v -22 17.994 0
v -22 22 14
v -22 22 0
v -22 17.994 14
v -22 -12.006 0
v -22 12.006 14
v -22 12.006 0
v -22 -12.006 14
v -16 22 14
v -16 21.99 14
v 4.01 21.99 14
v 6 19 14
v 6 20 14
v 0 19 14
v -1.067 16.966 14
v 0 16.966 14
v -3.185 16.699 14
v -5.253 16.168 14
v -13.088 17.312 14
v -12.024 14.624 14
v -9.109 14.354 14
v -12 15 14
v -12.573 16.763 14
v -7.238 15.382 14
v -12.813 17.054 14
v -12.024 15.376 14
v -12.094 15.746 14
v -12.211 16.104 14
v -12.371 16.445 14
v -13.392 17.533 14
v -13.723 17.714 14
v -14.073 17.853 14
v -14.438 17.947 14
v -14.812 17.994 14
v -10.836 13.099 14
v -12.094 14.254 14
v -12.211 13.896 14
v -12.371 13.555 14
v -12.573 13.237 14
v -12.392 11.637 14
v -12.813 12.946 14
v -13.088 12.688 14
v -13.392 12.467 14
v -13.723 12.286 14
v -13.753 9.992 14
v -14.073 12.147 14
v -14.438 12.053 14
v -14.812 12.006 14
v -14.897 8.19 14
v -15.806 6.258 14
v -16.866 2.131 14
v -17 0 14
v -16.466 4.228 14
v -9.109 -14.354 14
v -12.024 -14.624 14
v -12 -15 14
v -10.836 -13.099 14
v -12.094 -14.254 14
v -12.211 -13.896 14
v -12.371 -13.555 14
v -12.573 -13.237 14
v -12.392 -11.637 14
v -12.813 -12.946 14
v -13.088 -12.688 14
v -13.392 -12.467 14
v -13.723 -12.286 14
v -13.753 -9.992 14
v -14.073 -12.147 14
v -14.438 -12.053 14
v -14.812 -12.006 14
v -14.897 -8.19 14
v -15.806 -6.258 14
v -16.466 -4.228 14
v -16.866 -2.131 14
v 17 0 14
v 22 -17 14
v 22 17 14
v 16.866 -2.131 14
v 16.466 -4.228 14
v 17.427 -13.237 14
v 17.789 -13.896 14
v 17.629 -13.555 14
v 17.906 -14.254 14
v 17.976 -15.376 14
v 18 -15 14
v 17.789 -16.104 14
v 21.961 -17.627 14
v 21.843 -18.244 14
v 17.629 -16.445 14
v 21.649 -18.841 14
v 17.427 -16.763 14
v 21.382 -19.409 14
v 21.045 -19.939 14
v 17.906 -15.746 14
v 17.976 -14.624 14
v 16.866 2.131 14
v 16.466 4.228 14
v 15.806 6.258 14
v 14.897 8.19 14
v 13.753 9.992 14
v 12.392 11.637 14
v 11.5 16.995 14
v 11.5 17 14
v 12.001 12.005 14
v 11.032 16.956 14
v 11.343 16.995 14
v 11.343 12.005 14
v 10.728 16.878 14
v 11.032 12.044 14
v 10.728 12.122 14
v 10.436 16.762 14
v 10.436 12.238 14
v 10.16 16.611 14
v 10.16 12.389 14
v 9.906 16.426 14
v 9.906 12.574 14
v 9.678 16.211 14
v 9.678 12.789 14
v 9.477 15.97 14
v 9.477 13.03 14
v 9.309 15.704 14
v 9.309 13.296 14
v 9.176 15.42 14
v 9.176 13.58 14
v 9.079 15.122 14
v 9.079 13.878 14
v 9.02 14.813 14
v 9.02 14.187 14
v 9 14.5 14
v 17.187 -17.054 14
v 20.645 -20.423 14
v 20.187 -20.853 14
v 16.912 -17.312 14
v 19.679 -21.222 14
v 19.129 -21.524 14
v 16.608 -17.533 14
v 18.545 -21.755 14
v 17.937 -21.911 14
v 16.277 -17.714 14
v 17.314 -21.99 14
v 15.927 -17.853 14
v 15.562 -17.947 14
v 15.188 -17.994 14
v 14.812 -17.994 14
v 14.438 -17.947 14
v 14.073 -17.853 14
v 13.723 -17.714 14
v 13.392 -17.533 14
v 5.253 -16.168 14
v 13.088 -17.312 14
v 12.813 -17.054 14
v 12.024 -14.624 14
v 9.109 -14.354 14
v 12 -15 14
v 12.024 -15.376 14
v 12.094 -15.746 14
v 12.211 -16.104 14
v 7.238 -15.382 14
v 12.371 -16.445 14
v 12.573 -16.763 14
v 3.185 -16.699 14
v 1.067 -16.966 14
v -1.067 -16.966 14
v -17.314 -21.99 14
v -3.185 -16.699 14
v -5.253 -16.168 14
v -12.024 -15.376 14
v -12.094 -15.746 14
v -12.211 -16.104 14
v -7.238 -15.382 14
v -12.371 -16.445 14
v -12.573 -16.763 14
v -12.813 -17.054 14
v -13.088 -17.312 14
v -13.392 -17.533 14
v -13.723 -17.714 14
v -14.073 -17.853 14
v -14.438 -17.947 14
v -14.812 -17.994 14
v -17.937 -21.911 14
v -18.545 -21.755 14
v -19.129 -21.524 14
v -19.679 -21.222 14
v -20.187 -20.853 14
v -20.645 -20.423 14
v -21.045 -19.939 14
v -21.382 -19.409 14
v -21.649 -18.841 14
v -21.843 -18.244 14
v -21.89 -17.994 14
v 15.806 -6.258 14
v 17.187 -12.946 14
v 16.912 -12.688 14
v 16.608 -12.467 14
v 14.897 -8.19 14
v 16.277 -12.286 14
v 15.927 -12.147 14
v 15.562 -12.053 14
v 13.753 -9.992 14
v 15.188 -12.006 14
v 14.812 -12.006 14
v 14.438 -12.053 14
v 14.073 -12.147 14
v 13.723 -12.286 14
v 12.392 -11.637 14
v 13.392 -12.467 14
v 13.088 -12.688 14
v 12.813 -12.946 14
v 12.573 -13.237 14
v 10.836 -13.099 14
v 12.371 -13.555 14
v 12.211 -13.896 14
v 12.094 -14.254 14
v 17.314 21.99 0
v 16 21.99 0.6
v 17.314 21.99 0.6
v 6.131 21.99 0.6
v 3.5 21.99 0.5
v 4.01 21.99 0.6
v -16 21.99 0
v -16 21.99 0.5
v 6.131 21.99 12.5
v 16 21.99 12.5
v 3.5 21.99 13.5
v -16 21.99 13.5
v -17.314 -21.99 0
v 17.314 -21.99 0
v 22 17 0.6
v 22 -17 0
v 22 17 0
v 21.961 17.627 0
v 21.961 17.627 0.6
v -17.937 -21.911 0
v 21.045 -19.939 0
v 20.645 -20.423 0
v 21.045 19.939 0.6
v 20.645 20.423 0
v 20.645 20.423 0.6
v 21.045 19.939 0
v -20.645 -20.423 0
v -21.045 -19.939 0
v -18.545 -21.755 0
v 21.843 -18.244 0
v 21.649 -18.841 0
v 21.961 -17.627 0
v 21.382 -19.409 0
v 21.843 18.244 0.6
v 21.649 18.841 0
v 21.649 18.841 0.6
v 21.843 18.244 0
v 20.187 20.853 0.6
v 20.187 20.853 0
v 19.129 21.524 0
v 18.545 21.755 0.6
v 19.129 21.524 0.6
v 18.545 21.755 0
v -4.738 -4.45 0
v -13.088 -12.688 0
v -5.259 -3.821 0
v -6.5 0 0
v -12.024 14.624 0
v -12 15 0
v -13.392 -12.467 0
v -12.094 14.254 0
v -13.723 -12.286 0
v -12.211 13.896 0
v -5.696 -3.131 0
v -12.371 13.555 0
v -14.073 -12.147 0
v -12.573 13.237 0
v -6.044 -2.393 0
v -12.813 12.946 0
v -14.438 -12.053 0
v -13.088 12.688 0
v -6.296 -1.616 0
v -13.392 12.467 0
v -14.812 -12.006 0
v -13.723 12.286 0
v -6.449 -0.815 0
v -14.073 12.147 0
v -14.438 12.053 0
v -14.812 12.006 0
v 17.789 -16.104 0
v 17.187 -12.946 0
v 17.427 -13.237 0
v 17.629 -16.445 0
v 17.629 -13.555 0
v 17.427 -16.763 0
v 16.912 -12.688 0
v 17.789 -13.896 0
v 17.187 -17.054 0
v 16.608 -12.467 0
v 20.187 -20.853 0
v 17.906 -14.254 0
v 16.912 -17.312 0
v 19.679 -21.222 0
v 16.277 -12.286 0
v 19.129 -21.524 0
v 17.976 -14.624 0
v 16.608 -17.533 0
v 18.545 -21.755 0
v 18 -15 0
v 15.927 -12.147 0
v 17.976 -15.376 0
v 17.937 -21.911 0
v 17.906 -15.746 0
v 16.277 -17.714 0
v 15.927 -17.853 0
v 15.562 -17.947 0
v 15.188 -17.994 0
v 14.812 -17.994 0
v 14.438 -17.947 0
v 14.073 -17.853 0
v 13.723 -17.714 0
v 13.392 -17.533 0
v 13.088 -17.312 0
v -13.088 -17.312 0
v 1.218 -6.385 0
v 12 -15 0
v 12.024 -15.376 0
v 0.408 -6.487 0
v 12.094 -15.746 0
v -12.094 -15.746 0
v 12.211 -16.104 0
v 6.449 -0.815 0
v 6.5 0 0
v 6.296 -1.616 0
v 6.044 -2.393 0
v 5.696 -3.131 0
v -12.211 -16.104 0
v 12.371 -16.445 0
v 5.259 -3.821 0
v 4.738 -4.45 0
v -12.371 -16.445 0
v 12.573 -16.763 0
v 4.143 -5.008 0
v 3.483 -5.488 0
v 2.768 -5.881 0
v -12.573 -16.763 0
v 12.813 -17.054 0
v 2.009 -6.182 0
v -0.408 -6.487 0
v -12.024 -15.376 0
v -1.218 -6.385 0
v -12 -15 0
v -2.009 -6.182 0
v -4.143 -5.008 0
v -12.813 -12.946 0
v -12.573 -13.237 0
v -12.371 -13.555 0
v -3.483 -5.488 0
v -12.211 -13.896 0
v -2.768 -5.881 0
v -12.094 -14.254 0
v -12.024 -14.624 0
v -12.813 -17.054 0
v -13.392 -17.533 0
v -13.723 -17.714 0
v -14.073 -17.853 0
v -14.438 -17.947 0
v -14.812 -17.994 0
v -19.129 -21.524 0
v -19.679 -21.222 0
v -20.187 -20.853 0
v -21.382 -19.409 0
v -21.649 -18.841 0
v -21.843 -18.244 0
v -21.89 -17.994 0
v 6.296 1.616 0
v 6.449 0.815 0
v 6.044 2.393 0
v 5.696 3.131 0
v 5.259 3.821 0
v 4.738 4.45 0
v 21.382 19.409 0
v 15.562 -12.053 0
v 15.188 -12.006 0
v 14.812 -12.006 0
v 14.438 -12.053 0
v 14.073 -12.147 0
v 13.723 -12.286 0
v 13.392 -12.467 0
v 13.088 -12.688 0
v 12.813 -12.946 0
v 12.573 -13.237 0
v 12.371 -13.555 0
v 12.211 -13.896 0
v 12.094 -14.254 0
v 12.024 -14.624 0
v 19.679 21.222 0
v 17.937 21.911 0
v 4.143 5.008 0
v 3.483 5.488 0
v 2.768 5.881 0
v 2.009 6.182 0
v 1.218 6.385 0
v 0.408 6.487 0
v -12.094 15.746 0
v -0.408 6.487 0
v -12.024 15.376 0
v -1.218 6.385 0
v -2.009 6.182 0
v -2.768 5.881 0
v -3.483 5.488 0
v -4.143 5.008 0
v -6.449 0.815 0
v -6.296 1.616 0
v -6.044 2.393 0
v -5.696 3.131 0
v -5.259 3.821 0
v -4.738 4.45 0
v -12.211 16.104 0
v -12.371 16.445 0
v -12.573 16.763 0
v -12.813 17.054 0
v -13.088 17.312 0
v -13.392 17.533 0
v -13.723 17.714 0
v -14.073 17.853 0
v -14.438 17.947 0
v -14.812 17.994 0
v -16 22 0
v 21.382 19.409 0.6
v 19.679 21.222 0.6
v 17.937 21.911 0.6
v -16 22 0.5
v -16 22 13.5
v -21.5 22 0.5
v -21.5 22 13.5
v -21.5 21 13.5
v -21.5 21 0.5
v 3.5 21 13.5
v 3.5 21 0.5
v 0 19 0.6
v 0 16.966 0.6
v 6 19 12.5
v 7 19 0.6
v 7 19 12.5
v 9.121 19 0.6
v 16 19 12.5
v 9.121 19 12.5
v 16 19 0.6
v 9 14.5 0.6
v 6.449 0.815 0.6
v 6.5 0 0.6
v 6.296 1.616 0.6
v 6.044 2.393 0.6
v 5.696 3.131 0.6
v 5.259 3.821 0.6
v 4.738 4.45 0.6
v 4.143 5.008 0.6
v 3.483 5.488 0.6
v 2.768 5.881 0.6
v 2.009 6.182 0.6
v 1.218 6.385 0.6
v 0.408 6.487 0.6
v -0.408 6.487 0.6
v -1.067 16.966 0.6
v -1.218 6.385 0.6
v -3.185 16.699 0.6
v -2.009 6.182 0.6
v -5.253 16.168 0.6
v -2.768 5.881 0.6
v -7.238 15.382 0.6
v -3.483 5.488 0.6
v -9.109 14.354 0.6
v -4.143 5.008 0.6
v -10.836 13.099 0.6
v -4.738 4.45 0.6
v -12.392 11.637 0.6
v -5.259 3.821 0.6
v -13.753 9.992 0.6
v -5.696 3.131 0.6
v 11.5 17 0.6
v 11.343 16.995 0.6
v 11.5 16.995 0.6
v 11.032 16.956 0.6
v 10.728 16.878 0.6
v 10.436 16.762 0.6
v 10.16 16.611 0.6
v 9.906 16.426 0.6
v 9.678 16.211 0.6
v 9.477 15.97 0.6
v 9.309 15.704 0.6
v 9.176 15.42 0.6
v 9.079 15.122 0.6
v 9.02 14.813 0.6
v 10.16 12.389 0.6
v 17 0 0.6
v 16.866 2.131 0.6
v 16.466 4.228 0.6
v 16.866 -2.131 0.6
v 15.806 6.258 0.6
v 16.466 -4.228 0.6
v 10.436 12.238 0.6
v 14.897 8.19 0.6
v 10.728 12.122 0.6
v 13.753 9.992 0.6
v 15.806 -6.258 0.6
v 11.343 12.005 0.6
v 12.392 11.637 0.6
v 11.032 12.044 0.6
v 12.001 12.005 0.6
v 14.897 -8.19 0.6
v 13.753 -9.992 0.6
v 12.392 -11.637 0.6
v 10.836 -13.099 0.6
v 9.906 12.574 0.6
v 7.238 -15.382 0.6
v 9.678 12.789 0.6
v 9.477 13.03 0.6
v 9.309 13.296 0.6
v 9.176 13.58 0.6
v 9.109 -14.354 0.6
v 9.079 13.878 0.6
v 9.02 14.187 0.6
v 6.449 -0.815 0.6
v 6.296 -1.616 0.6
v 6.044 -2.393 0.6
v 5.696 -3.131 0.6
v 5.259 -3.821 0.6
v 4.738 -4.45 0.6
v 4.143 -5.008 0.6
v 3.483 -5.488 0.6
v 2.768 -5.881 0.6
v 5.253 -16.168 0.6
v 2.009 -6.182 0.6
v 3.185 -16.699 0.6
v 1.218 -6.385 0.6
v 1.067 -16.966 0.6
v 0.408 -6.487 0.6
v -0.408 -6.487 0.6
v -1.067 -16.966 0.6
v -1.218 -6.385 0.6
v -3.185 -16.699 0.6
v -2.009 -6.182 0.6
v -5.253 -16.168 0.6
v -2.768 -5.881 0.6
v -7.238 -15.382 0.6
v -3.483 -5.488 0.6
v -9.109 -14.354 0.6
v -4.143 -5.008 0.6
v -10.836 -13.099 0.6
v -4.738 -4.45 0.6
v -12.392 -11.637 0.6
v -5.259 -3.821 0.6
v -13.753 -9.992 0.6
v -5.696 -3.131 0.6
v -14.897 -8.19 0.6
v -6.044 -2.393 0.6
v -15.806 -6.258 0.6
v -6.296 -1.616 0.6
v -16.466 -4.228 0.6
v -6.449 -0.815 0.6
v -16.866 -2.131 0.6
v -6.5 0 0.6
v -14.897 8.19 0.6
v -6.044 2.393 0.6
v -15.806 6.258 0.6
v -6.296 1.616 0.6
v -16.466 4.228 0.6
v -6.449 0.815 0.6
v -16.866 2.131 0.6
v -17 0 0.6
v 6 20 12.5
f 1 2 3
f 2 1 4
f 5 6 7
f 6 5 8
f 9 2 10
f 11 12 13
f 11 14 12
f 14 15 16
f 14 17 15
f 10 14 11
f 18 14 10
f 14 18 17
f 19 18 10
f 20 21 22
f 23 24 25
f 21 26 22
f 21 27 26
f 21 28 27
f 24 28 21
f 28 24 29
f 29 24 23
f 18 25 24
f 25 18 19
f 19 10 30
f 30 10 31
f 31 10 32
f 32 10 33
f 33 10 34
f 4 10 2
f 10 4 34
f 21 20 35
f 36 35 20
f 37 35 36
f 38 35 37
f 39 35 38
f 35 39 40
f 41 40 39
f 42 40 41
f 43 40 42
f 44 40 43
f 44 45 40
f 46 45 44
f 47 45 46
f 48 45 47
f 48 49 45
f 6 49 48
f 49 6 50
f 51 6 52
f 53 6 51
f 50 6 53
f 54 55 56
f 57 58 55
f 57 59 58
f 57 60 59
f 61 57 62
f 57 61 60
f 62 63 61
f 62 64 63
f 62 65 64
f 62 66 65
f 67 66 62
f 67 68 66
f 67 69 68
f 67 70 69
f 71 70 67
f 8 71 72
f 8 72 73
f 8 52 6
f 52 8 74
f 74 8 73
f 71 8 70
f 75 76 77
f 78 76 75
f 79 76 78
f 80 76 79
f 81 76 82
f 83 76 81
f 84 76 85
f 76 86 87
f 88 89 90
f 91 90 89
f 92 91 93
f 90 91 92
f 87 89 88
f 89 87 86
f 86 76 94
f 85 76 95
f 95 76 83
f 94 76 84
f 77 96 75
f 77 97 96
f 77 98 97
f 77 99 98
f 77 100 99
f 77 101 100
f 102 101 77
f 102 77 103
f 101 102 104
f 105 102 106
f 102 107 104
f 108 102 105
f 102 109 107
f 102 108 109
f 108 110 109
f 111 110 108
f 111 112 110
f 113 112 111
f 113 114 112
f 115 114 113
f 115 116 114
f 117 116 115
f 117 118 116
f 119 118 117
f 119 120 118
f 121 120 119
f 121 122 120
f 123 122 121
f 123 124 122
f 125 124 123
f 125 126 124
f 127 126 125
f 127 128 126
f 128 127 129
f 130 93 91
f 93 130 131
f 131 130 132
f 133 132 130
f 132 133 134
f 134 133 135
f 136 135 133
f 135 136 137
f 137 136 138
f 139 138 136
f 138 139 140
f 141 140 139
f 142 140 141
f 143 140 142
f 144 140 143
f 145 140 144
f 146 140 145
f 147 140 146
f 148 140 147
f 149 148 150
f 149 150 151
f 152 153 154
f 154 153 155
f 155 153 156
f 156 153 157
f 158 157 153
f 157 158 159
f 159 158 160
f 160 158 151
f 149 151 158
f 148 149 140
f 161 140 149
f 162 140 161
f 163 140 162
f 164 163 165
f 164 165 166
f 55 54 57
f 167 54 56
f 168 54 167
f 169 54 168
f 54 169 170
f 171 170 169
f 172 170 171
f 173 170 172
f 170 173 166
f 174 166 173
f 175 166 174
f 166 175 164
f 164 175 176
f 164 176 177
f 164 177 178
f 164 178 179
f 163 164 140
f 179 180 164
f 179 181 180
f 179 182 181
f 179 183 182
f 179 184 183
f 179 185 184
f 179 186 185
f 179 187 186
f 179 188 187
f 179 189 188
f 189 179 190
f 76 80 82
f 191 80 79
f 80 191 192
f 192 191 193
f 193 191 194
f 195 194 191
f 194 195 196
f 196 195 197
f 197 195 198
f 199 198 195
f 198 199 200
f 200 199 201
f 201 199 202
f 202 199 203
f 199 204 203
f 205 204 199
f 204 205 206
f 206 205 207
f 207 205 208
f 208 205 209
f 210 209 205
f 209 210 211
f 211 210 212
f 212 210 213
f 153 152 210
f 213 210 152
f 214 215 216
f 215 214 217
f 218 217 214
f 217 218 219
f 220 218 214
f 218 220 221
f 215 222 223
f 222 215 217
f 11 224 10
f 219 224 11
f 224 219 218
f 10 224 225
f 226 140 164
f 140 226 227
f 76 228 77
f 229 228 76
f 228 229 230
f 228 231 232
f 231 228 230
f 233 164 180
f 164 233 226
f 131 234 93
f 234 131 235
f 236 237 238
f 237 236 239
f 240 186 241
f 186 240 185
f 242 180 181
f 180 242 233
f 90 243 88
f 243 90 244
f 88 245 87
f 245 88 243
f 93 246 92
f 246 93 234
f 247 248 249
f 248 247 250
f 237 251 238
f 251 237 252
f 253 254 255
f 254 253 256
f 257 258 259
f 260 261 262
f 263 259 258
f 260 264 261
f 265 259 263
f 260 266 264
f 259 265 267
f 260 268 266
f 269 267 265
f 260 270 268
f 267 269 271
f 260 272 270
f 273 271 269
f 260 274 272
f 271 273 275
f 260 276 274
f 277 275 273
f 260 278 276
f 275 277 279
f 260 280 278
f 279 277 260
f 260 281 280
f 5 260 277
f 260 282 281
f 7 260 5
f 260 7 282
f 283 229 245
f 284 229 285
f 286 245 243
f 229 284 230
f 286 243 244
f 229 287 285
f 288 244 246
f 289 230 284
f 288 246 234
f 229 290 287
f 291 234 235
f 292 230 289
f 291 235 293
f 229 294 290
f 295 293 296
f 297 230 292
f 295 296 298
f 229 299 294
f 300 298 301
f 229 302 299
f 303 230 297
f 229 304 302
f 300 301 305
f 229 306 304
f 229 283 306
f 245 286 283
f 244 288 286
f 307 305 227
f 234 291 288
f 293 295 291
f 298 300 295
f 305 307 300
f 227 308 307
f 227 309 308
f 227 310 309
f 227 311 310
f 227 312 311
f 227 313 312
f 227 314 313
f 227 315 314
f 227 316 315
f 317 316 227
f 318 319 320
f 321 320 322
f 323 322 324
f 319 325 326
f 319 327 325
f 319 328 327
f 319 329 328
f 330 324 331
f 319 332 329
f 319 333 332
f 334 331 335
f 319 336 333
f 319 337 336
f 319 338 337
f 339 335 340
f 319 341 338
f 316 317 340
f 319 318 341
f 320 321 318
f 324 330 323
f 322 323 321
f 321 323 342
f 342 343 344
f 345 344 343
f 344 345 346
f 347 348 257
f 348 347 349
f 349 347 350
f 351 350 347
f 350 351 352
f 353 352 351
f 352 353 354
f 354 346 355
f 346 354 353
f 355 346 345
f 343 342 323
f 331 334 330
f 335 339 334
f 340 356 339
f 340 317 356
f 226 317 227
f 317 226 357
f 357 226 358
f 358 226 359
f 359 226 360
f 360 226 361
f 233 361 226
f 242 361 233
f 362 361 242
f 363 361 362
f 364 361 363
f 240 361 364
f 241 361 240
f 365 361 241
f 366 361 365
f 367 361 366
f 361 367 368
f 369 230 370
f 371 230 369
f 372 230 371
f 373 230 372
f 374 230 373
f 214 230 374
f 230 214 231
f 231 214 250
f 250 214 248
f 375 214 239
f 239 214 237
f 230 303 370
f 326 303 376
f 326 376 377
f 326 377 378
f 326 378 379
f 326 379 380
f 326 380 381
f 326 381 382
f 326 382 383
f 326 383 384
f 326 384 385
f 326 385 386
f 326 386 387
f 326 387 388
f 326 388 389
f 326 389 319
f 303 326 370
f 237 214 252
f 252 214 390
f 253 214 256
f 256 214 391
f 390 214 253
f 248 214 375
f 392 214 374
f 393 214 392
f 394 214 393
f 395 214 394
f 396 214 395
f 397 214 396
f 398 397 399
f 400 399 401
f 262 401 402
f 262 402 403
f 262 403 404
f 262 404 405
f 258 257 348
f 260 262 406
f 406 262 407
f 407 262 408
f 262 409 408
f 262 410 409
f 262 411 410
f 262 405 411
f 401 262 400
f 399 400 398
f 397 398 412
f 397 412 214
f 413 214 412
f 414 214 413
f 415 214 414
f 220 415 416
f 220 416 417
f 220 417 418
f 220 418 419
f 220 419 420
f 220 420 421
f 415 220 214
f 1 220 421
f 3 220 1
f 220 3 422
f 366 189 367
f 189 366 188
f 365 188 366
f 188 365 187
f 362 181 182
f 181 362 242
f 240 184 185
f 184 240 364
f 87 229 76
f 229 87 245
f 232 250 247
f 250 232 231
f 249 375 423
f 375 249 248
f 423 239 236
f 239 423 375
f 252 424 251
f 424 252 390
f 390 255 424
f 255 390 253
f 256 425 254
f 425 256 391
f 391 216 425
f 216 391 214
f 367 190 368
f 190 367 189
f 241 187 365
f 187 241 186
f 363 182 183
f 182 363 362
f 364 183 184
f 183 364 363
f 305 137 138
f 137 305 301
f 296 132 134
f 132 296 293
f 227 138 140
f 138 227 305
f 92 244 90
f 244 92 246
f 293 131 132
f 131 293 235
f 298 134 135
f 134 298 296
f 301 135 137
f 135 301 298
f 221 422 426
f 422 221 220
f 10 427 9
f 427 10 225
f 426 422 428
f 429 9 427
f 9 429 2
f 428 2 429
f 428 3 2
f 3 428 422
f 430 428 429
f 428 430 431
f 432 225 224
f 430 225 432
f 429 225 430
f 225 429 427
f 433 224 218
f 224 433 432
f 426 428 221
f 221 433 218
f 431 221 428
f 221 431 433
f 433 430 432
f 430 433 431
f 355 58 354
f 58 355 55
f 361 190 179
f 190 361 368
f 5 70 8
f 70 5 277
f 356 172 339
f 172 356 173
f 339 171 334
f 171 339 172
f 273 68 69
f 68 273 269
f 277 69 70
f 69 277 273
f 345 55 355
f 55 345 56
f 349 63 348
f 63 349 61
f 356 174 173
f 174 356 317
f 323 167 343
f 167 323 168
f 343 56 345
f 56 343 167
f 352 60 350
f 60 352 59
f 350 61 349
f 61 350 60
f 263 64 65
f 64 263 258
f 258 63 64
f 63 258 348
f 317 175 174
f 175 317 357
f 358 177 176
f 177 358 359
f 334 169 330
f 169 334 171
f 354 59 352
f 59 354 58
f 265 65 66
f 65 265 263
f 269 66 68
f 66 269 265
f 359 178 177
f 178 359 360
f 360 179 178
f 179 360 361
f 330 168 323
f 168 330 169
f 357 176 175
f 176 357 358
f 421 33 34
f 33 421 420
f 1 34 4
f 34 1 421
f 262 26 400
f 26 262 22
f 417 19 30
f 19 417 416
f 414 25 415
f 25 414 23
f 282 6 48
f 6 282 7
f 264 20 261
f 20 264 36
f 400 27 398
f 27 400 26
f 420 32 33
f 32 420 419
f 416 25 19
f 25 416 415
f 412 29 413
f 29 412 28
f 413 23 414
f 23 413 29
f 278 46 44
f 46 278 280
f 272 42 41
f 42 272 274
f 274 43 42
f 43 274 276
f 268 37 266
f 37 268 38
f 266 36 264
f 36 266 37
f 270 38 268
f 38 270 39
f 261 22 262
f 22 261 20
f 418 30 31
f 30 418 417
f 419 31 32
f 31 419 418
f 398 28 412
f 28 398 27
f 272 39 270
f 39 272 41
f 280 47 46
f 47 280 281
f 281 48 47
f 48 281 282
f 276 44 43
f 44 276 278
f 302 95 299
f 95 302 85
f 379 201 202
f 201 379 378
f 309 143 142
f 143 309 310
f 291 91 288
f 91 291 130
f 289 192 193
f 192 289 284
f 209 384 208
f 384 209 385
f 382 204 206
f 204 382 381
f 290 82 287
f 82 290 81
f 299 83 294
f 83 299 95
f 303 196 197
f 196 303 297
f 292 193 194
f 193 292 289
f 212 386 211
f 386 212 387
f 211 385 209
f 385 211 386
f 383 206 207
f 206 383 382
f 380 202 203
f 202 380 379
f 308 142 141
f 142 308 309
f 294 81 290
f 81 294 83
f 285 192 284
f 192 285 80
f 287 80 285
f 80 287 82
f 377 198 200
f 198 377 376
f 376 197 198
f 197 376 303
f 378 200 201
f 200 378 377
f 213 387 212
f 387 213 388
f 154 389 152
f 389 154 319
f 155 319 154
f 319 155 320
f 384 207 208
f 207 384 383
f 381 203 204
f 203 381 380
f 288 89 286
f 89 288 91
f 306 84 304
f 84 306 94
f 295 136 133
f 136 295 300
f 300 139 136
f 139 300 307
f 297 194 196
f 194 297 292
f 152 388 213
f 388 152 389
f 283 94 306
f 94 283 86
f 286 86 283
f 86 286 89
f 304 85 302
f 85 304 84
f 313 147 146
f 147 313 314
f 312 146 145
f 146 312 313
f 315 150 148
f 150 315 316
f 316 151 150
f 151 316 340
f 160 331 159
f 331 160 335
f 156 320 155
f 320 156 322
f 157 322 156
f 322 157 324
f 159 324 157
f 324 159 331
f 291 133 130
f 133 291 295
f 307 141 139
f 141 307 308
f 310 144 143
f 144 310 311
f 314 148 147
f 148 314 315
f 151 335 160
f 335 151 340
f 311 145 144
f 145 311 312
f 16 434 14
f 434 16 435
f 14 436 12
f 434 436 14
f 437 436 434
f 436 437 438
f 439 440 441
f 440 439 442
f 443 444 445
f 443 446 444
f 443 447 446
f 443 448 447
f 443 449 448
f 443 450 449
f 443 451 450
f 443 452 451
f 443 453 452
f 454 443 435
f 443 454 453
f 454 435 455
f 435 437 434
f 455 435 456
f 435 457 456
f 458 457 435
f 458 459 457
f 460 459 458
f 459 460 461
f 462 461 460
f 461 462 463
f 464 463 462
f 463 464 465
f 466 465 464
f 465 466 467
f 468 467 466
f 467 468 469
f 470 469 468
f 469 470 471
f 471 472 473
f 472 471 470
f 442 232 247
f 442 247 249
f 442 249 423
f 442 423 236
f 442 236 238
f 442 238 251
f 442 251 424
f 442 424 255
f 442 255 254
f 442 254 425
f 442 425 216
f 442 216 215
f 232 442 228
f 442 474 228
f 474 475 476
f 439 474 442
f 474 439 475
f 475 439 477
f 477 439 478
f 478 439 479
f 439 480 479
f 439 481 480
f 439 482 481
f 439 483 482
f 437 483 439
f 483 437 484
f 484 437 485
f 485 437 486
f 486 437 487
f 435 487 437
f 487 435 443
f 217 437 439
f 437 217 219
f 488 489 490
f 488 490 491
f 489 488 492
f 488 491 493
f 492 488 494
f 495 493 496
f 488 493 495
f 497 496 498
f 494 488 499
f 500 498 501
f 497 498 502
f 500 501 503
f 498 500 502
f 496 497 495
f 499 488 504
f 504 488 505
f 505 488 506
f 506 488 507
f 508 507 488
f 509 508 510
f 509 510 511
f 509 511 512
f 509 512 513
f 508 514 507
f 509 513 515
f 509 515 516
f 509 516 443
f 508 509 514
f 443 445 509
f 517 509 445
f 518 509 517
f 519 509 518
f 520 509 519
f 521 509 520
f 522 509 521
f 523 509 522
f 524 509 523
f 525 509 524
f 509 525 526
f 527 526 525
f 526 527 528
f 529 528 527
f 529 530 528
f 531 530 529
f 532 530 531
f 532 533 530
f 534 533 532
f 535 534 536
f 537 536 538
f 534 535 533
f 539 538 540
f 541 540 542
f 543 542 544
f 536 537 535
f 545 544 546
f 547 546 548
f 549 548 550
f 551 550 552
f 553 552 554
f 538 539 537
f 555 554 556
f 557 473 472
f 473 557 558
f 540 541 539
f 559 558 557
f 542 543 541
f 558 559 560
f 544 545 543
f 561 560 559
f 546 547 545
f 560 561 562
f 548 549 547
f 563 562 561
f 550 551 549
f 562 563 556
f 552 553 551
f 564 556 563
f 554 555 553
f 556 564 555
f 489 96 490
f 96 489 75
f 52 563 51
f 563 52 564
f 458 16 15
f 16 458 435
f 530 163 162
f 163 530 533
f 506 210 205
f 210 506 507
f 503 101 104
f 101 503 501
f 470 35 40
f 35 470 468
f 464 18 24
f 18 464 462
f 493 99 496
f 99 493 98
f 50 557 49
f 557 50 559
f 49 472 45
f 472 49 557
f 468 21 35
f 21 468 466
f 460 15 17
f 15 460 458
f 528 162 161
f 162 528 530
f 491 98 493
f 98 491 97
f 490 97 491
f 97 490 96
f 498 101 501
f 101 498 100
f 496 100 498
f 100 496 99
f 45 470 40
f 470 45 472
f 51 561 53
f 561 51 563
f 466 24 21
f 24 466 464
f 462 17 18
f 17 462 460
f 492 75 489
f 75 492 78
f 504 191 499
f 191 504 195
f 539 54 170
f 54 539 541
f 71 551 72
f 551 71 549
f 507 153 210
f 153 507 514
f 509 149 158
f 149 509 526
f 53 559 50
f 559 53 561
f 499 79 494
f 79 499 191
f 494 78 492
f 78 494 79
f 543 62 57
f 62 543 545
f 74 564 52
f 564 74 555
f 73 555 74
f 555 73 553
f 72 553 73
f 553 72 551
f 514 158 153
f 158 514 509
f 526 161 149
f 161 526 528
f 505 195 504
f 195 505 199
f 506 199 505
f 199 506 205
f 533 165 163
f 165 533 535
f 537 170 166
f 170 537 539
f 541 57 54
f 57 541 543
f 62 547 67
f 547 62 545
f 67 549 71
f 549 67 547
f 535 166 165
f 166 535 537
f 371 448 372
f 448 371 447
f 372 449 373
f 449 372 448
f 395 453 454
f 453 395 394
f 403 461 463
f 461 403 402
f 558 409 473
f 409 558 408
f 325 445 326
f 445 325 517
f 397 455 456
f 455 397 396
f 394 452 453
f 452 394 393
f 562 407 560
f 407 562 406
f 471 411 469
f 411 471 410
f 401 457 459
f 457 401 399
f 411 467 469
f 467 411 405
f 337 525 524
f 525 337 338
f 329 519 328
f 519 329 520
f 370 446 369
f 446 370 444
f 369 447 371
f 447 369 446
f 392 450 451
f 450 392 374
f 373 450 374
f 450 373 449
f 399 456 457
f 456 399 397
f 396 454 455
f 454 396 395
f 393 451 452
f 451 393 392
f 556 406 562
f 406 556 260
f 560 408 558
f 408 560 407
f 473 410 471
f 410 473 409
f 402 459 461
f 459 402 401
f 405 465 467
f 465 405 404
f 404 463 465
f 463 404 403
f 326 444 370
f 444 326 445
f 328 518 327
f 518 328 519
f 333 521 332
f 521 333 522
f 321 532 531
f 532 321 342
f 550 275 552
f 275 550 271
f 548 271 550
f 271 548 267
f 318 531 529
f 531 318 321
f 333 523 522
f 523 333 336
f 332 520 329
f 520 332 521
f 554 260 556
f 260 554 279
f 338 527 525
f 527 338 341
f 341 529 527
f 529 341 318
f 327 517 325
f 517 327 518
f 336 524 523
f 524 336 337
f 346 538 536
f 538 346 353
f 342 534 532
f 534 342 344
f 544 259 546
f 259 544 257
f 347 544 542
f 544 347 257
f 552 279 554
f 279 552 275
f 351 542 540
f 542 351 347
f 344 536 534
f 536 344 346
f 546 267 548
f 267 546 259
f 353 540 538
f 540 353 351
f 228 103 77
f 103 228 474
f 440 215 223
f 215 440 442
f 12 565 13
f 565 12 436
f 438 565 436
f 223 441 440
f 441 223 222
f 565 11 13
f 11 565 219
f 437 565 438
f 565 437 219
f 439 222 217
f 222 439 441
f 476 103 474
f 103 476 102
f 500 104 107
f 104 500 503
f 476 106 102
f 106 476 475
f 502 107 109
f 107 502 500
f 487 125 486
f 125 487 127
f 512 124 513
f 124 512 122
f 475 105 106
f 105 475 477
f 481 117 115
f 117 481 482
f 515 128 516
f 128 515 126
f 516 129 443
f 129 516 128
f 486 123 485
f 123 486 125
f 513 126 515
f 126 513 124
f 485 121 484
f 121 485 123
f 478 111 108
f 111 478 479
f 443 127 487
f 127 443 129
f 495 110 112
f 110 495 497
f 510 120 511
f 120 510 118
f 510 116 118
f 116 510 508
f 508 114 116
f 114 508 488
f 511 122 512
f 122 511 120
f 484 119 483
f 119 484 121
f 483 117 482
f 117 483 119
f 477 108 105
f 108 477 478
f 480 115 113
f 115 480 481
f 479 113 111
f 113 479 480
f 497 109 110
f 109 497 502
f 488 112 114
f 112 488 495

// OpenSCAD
$fn = 50;


union() {
	difference() {
		union() {
			translate(v = [0, 0, 0]) {
				rotate(a = [0, 0, 0]) {
					hull() {
						translate(v = [-17.0000000000, 17.0000000000, 0]) {
							rotate(a = [0, 0, 0]) {
								translate(v = [0, 0, 0]) {
									rotate(a = [0, 0, 0]) {
										cylinder(h = 14, r = 5);
									}
								}
							}
						}
						translate(v = [17.0000000000, 17.0000000000, 0]) {
							rotate(a = [0, 0, 0]) {
								translate(v = [0, 0, 0]) {
									rotate(a = [0, 0, 0]) {
										cylinder(h = 14, r = 5);
									}
								}
							}
						}
						translate(v = [-17.0000000000, -17.0000000000, 0]) {
							rotate(a = [0, 0, 0]) {
								translate(v = [0, 0, 0]) {
									rotate(a = [0, 0, 0]) {
										cylinder(h = 14, r = 5);
									}
								}
							}
						}
						translate(v = [17.0000000000, -17.0000000000, 0]) {
							rotate(a = [0, 0, 0]) {
								translate(v = [0, 0, 0]) {
									rotate(a = [0, 0, 0]) {
										cylinder(h = 14, r = 5);
									}
								}
							}
						}
					}
				}
			}
			translate(v = [-22.0000000000, 16.0000000000, 0]) {
				rotate(a = [0, 0, 0]) {
					cube(size = [6, 6, 14]);
				}
			}
		}
		union() {
			#translate(v = [-21.5000000000, 21.0000000000, 0.5000000000]) {
				rotate(a = [0, 0, 0]) {
					cube(size = [25, 1, 13.0000000000]);
				}
			}
			translate(v = [-22.5000000000, -15.0000000000, -125]) {
				rotate(a = [0, 0, 0]) {
					hull() {
						translate(v = [7.5000000000, 0, 0]) {
							rotate(a = [0, 0, 0]) {
								translate(v = [0, 0, 0]) {
									rotate(a = [0, 0, 0]) {
										cylinder(h = 250, r = 3.0000000000);
									}
								}
							}
						}
						translate(v = [-7.5000000000, 0, 0]) {
							rotate(a = [0, 0, 0]) {
								translate(v = [0, 0, 0]) {
									rotate(a = [0, 0, 0]) {
										cylinder(h = 250, r = 3.0000000000);
									}
								}
							}
						}
					}
				}
			}
			translate(v = [-22.5000000000, 15.0000000000, -125]) {
				rotate(a = [0, 0, 0]) {
					hull() {
						translate(v = [7.5000000000, 0, 0]) {
							rotate(a = [0, 0, 0]) {
								translate(v = [0, 0, 0]) {
									rotate(a = [0, 0, 0]) {
										cylinder(h = 250, r = 3.0000000000);
									}
								}
							}
						}
						translate(v = [-7.5000000000, 0, 0]) {
							rotate(a = [0, 0, 0]) {
								translate(v = [0, 0, 0]) {
									rotate(a = [0, 0, 0]) {
										cylinder(h = 250, r = 3.0000000000);
									}
								}
							}
						}
					}
				}
			}
			translate(v = [15.0000000000, -15.0000000000, -125.0000000000]) {
				rotate(a = [0, 0, 0]) {
					cylinder(h = 250, r = 3.0000000000);
				}
			}
			translate(v = [0.0000000000, 11.0000000000, 0.6000000000]) {
				rotate(a = [0, 0, 0]) {
					cube(size = [11, 8, 16.4000000000]);
				}
			}
			translate(v = [0, 0, 0.6000000000]) {
				rotate(a = [0, 0, 0]) {
					cylinder(h = 16.4000000000, r = 17.0000000000);
				}
			}
			translate(v = [0, 0, -7.0000000000]) {
				rotate(a = [0, 0, 0]) {
					cylinder(h = 14, r = 6.5000000000);
				}
			}
			translate(v = [0.0000000000, 17.0000000000, 0.6000000000]) {
				rotate(a = [0, 0, 0]) {
					cube(size = [22.0000000000, 2, 16.4000000000]);
				}
			}
			translate(v = [16.0000000000, 17.0000000000, 0.6000000000]) {
				rotate(a = [0, 0, 0]) {
					cube(size = [6, 5, 16.4000000000]);
				}
			}
			translate(v = [6.0000000000, 17.0000000000, 12.5000000000]) {
				rotate(a = [0, 0, 0]) {
					cube(size = [16, 5, 1.5000000000]);
				}
			}
			translate(v = [3.2500000000, 22.7500000000, 0.6000000000]) {
				rotate(a = [0, 0, -45]) {
					cube(size = [7.5000000000, 1.5000000000, 16.4000000000]);
				}
			}
			translate(v = [2.5000000000, 12.0000000000, 0.6000000000]) {
				rotate(a = [0, 0, 0]) {
					cube(size = [9.0000000000, 5, 13.4000000000]);
				}
			}
		}
	}
	union() {
		translate(v = [14, 14.5000000000, 0]) {
			rotate(a = [0, 0, 0]) {
				hull() {
					translate(v = [2.5000000000, 0, 0]) {
						rotate(a = [0, 0, 0]) {
							#translate(v = [0, 0, 0]) {
								rotate(a = [0, 0, 0]) {
									cylinder(h = 14, r = 2.5000000000);
								}
							}
						}
					}
					translate(v = [-2.5000000000, 0, 0]) {
						rotate(a = [0, 0, 0]) {
							#translate(v = [0, 0, 0]) {
								rotate(a = [0, 0, 0]) {
									cylinder(h = 14, r = 2.5000000000);
								}
							}
						}
					}
				}
			}
		}
	}
}
